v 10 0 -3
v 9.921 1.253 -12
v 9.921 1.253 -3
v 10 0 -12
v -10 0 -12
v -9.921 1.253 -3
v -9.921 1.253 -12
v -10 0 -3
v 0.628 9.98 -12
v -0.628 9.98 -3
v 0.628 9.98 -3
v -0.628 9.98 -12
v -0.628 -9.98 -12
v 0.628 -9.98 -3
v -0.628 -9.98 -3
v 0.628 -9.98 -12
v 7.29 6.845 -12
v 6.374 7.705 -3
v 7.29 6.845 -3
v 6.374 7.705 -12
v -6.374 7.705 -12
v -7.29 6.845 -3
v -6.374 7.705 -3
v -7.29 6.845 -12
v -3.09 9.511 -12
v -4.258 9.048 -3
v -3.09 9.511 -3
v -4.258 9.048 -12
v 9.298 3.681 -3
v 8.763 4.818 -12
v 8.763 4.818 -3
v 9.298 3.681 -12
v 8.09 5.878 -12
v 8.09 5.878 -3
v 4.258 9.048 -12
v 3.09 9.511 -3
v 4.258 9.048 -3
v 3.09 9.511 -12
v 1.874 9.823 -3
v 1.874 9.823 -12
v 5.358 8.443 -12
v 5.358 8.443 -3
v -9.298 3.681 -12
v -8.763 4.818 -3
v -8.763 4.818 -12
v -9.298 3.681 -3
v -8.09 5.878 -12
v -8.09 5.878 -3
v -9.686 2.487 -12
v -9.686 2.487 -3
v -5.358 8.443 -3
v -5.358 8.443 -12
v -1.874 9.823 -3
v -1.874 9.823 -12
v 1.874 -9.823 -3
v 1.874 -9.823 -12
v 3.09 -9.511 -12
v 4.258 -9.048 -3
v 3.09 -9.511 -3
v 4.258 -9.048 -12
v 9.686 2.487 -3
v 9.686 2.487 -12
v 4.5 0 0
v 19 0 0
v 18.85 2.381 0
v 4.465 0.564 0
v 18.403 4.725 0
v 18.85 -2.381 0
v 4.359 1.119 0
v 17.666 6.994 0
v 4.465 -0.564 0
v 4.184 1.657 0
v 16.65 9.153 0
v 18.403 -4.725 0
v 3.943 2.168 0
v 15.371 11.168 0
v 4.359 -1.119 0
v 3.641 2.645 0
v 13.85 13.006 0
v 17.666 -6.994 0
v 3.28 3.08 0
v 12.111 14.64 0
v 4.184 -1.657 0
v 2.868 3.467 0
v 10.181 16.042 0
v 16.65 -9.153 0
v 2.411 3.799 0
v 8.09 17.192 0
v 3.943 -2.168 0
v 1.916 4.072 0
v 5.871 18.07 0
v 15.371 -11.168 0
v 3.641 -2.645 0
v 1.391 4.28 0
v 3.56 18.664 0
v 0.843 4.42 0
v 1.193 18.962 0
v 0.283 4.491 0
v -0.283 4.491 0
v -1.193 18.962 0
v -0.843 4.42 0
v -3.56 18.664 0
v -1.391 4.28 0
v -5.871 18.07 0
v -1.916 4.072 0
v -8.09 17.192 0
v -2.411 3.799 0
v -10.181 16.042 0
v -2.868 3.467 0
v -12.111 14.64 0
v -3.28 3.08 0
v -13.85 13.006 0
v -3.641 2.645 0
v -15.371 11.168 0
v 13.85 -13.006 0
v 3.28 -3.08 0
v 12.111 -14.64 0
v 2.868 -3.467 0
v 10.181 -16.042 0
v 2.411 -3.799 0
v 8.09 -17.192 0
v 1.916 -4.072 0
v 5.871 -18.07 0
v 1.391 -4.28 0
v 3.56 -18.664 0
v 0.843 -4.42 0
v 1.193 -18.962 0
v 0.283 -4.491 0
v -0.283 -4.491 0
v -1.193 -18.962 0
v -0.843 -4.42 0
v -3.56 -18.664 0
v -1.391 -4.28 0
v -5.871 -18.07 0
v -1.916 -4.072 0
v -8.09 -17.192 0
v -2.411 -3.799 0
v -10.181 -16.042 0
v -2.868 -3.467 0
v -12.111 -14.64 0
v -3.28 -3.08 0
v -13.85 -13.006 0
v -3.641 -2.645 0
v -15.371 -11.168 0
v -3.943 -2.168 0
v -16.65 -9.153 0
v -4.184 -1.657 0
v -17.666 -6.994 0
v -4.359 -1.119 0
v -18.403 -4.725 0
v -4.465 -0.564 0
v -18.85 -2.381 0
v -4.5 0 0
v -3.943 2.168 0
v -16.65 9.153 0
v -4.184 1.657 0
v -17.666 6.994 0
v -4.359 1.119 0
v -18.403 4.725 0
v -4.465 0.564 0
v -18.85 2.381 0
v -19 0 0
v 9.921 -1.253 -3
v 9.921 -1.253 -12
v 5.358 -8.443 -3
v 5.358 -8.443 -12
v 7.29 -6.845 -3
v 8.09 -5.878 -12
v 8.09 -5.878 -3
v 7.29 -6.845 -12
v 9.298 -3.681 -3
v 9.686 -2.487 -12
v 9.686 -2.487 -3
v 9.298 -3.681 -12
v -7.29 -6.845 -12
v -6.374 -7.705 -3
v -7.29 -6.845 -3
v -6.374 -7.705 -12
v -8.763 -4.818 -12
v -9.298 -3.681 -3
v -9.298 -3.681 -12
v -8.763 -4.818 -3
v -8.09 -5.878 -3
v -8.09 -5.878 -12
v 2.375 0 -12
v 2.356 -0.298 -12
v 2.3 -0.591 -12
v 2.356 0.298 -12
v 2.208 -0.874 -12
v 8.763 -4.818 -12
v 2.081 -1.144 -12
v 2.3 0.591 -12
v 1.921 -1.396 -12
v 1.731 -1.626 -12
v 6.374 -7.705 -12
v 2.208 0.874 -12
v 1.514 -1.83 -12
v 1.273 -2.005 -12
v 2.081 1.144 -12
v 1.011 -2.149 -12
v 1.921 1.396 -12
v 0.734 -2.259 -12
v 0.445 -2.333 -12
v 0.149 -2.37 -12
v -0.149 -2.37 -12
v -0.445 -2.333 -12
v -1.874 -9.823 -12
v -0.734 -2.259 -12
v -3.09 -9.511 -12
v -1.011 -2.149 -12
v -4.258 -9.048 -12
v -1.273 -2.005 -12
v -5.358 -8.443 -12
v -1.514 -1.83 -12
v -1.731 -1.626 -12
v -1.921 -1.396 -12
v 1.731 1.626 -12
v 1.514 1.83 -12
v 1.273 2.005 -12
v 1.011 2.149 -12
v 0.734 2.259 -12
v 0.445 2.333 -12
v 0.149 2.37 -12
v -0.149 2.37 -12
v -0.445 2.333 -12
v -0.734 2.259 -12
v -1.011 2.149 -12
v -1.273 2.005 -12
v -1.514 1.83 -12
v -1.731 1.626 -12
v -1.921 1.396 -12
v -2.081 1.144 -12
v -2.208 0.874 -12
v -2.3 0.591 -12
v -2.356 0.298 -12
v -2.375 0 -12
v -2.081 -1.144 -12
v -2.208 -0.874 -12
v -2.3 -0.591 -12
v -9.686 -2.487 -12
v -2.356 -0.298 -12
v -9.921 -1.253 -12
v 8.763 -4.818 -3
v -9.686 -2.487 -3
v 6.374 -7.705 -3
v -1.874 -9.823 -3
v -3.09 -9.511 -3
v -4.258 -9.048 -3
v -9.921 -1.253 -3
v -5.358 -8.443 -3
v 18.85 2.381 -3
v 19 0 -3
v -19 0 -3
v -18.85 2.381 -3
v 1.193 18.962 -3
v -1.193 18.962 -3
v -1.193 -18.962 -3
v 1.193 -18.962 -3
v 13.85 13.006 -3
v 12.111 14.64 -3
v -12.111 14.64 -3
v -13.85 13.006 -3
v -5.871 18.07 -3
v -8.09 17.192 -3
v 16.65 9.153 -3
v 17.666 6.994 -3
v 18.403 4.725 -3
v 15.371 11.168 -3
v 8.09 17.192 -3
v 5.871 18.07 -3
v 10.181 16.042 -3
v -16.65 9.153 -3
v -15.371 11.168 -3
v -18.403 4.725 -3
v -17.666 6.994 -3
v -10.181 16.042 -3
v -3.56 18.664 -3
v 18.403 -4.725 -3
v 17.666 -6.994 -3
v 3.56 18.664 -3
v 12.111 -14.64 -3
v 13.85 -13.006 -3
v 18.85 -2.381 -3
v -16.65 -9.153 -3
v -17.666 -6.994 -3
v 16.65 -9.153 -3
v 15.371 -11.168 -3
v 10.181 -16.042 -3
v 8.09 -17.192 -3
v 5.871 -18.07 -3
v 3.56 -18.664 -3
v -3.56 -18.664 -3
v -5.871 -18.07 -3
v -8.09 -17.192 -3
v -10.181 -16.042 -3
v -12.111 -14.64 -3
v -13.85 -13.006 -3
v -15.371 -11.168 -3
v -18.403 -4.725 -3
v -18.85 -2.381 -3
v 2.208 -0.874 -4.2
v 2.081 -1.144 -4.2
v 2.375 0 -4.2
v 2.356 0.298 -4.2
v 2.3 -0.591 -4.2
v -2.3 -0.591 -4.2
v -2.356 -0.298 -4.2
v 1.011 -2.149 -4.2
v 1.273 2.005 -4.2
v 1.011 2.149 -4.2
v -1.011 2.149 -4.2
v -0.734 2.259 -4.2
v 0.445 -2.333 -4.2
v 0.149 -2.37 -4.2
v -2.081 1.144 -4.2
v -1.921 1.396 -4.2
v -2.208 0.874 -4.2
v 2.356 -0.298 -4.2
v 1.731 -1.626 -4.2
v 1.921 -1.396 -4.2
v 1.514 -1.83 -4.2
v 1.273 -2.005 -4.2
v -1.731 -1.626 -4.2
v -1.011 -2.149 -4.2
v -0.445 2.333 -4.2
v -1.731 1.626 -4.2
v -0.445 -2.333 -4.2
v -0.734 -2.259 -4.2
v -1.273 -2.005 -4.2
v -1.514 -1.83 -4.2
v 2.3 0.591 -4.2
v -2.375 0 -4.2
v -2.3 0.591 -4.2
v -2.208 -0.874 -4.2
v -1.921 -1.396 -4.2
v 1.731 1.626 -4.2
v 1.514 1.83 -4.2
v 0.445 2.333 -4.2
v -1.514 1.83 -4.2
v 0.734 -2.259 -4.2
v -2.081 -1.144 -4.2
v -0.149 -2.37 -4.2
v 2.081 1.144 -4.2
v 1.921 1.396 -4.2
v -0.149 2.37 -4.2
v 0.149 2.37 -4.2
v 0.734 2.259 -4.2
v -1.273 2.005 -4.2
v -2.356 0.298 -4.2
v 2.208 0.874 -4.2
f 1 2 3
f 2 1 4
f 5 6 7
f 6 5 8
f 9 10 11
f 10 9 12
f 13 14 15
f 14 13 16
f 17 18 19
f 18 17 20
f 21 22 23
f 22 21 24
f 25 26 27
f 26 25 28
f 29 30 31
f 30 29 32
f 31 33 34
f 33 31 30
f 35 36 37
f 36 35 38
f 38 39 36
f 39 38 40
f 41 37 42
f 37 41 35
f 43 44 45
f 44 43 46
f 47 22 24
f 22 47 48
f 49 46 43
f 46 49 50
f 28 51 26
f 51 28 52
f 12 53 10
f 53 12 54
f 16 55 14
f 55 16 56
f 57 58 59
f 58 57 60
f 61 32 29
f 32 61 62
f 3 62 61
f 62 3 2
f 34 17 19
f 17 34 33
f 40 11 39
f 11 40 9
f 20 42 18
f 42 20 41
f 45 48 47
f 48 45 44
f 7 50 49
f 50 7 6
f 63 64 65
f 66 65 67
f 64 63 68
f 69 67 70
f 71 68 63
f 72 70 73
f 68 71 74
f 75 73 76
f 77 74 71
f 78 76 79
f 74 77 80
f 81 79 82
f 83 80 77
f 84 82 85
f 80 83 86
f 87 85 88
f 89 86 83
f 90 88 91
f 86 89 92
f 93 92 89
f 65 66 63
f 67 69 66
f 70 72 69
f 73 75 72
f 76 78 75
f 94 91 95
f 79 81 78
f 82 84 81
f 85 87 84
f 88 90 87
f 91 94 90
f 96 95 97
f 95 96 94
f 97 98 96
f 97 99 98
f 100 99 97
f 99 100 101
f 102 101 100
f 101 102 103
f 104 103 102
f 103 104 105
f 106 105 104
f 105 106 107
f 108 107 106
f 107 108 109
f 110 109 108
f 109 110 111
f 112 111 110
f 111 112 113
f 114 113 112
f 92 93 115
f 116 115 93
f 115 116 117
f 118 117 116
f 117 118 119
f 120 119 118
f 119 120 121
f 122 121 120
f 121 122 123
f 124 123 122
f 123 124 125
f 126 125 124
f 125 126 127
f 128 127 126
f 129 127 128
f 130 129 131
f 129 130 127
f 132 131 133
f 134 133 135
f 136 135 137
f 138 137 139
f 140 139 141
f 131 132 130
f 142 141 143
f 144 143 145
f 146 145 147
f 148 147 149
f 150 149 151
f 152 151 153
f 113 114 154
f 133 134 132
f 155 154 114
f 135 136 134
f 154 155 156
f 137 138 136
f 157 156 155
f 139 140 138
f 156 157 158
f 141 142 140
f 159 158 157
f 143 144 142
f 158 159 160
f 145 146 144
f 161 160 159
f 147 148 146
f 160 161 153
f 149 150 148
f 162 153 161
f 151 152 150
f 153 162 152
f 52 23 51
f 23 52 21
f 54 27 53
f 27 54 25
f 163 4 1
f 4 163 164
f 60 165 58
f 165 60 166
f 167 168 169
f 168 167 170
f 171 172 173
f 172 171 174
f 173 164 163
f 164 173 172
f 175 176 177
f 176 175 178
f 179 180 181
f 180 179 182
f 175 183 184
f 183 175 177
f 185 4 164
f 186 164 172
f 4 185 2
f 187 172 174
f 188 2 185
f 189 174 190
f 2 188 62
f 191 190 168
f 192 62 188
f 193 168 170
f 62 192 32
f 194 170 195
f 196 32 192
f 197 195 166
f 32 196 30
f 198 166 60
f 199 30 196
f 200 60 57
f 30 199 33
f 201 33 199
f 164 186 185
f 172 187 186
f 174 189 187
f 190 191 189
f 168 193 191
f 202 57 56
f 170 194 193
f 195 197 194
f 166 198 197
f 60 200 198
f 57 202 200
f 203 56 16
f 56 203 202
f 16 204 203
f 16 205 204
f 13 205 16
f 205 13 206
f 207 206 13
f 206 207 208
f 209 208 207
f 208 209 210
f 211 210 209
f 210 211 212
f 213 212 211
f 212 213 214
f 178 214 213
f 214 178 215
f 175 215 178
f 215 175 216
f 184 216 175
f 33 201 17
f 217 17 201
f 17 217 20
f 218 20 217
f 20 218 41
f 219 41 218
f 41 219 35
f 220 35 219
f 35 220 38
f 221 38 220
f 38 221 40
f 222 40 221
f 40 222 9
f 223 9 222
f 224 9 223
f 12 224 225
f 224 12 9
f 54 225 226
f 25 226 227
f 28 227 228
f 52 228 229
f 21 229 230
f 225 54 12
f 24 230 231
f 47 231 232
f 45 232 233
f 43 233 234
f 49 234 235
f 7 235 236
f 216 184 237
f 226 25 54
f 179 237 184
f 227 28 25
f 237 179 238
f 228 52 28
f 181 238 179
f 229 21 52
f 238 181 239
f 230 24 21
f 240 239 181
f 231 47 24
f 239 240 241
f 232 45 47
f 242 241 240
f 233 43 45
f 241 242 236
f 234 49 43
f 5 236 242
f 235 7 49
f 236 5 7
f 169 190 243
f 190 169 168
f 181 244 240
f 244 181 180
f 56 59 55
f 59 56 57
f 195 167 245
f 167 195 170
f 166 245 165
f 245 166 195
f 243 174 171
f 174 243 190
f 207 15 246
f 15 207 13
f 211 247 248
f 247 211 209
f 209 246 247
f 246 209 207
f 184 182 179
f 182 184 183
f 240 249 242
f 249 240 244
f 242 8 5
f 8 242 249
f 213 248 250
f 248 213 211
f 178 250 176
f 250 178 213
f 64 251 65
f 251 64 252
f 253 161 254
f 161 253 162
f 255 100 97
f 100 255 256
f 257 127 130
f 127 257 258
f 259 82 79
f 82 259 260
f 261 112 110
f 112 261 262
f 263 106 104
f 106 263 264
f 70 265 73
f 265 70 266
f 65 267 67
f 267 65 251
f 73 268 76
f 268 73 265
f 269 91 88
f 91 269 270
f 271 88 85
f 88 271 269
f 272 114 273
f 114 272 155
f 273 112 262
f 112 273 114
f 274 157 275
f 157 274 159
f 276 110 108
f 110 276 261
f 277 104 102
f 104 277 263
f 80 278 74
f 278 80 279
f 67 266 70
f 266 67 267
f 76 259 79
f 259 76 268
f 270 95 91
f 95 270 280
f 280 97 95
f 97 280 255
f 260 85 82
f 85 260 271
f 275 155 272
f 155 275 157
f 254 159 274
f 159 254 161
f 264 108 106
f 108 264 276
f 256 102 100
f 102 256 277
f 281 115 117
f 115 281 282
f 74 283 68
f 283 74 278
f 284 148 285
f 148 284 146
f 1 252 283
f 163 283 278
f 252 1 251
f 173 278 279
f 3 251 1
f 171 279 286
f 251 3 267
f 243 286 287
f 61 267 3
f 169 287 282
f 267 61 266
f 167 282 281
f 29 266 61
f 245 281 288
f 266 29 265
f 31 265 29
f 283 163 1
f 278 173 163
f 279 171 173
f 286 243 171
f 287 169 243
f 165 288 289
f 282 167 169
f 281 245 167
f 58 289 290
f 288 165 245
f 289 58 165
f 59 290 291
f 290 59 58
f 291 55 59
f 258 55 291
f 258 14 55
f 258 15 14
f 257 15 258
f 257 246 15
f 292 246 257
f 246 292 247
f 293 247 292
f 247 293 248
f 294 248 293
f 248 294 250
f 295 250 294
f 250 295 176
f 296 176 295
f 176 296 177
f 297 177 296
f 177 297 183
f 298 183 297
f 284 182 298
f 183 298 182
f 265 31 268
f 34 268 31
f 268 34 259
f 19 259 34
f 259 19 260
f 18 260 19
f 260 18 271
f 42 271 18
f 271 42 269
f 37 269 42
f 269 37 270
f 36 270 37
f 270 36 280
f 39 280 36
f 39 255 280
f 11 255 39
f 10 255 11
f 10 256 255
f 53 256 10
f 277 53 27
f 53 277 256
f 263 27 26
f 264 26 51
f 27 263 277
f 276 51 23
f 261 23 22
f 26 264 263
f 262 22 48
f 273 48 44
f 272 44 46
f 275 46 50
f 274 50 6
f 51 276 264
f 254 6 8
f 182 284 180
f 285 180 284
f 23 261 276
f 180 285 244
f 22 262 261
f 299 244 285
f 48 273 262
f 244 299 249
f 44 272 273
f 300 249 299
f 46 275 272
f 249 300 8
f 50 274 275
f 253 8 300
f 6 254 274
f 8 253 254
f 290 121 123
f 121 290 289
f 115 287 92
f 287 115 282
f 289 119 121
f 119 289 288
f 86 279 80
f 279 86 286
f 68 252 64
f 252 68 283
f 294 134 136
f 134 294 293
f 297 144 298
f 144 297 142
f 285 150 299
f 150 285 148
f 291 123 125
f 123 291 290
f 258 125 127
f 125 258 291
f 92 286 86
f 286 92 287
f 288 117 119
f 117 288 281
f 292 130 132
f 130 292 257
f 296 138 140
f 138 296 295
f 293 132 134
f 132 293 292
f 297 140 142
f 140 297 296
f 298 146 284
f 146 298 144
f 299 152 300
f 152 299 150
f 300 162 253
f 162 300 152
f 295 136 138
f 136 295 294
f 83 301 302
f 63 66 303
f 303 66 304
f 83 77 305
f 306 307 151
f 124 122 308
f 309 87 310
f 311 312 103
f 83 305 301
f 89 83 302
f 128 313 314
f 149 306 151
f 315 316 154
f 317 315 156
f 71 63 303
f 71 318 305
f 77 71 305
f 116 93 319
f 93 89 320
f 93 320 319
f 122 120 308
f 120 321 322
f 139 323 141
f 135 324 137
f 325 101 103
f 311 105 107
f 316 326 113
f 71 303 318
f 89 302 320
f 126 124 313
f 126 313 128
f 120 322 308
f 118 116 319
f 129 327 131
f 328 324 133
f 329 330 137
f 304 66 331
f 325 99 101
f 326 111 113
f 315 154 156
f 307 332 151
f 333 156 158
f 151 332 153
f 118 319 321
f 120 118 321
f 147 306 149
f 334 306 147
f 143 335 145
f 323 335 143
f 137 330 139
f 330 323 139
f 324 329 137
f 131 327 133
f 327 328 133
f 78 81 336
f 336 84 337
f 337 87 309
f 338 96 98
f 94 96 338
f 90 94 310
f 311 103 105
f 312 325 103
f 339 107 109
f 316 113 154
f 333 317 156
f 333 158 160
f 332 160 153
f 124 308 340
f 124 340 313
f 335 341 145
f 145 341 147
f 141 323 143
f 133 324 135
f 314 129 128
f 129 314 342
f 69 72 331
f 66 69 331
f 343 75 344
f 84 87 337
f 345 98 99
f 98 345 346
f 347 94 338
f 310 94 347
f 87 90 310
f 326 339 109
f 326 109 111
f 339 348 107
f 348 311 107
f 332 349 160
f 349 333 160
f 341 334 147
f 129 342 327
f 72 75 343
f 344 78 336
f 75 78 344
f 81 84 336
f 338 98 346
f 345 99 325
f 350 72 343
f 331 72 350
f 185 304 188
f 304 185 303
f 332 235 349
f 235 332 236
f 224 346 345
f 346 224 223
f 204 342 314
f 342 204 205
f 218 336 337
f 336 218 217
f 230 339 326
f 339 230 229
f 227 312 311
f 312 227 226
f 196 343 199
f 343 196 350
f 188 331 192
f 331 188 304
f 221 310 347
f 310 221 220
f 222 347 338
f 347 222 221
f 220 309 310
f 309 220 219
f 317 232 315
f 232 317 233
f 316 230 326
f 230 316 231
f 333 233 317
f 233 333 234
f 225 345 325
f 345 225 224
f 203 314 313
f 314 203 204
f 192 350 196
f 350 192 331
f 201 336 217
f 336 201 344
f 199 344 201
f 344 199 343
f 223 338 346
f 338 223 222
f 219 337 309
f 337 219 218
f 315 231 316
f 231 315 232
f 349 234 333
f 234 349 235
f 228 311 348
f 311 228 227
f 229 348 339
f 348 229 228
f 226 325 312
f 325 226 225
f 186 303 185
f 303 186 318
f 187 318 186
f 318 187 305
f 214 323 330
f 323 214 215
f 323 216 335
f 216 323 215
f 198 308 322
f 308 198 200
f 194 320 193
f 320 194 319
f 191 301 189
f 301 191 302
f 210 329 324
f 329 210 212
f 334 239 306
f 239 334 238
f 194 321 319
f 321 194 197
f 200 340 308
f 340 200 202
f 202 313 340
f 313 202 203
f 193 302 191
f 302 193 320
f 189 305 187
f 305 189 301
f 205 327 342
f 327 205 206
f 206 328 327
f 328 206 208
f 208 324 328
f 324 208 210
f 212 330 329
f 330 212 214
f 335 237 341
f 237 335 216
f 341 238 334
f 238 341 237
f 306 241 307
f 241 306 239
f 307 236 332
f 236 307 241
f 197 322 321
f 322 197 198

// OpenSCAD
$fn = 50;


difference() {
	union() {
		translate(v = [0, 0, -12.0000000000]) {
			cylinder(h = 12, r = 10.0000000000);
		}
		translate(v = [0, 0, -3.0000000000]) {
			cylinder(h = 3, r = 19.0000000000);
		}
	}
	union() {
		translate(v = [0, 0, 0]) {
			rotate(a = [0, 0, 0]) {
				difference() {
					union() {
						#translate(v = [0, 0, -12.0000000000]) {
							cylinder(h = 12, r = 2.2500000000);
						}
						#translate(v = [0, 0, -4.2000000000]) {
							cylinder(h = 4.2000000000, r1 = 2.3750000000, r2 = 4.5000000000);
						}
						#translate(v = [0, 0, -12.0000000000]) {
							cylinder(h = 12, r = 2.3750000000);
						}
						#translate(v = [0, 0, -12.0000000000]) {
							cylinder(h = 12, r = 2.2500000000);
						}
					}
					union();
				}
			}
		}
	}
}
